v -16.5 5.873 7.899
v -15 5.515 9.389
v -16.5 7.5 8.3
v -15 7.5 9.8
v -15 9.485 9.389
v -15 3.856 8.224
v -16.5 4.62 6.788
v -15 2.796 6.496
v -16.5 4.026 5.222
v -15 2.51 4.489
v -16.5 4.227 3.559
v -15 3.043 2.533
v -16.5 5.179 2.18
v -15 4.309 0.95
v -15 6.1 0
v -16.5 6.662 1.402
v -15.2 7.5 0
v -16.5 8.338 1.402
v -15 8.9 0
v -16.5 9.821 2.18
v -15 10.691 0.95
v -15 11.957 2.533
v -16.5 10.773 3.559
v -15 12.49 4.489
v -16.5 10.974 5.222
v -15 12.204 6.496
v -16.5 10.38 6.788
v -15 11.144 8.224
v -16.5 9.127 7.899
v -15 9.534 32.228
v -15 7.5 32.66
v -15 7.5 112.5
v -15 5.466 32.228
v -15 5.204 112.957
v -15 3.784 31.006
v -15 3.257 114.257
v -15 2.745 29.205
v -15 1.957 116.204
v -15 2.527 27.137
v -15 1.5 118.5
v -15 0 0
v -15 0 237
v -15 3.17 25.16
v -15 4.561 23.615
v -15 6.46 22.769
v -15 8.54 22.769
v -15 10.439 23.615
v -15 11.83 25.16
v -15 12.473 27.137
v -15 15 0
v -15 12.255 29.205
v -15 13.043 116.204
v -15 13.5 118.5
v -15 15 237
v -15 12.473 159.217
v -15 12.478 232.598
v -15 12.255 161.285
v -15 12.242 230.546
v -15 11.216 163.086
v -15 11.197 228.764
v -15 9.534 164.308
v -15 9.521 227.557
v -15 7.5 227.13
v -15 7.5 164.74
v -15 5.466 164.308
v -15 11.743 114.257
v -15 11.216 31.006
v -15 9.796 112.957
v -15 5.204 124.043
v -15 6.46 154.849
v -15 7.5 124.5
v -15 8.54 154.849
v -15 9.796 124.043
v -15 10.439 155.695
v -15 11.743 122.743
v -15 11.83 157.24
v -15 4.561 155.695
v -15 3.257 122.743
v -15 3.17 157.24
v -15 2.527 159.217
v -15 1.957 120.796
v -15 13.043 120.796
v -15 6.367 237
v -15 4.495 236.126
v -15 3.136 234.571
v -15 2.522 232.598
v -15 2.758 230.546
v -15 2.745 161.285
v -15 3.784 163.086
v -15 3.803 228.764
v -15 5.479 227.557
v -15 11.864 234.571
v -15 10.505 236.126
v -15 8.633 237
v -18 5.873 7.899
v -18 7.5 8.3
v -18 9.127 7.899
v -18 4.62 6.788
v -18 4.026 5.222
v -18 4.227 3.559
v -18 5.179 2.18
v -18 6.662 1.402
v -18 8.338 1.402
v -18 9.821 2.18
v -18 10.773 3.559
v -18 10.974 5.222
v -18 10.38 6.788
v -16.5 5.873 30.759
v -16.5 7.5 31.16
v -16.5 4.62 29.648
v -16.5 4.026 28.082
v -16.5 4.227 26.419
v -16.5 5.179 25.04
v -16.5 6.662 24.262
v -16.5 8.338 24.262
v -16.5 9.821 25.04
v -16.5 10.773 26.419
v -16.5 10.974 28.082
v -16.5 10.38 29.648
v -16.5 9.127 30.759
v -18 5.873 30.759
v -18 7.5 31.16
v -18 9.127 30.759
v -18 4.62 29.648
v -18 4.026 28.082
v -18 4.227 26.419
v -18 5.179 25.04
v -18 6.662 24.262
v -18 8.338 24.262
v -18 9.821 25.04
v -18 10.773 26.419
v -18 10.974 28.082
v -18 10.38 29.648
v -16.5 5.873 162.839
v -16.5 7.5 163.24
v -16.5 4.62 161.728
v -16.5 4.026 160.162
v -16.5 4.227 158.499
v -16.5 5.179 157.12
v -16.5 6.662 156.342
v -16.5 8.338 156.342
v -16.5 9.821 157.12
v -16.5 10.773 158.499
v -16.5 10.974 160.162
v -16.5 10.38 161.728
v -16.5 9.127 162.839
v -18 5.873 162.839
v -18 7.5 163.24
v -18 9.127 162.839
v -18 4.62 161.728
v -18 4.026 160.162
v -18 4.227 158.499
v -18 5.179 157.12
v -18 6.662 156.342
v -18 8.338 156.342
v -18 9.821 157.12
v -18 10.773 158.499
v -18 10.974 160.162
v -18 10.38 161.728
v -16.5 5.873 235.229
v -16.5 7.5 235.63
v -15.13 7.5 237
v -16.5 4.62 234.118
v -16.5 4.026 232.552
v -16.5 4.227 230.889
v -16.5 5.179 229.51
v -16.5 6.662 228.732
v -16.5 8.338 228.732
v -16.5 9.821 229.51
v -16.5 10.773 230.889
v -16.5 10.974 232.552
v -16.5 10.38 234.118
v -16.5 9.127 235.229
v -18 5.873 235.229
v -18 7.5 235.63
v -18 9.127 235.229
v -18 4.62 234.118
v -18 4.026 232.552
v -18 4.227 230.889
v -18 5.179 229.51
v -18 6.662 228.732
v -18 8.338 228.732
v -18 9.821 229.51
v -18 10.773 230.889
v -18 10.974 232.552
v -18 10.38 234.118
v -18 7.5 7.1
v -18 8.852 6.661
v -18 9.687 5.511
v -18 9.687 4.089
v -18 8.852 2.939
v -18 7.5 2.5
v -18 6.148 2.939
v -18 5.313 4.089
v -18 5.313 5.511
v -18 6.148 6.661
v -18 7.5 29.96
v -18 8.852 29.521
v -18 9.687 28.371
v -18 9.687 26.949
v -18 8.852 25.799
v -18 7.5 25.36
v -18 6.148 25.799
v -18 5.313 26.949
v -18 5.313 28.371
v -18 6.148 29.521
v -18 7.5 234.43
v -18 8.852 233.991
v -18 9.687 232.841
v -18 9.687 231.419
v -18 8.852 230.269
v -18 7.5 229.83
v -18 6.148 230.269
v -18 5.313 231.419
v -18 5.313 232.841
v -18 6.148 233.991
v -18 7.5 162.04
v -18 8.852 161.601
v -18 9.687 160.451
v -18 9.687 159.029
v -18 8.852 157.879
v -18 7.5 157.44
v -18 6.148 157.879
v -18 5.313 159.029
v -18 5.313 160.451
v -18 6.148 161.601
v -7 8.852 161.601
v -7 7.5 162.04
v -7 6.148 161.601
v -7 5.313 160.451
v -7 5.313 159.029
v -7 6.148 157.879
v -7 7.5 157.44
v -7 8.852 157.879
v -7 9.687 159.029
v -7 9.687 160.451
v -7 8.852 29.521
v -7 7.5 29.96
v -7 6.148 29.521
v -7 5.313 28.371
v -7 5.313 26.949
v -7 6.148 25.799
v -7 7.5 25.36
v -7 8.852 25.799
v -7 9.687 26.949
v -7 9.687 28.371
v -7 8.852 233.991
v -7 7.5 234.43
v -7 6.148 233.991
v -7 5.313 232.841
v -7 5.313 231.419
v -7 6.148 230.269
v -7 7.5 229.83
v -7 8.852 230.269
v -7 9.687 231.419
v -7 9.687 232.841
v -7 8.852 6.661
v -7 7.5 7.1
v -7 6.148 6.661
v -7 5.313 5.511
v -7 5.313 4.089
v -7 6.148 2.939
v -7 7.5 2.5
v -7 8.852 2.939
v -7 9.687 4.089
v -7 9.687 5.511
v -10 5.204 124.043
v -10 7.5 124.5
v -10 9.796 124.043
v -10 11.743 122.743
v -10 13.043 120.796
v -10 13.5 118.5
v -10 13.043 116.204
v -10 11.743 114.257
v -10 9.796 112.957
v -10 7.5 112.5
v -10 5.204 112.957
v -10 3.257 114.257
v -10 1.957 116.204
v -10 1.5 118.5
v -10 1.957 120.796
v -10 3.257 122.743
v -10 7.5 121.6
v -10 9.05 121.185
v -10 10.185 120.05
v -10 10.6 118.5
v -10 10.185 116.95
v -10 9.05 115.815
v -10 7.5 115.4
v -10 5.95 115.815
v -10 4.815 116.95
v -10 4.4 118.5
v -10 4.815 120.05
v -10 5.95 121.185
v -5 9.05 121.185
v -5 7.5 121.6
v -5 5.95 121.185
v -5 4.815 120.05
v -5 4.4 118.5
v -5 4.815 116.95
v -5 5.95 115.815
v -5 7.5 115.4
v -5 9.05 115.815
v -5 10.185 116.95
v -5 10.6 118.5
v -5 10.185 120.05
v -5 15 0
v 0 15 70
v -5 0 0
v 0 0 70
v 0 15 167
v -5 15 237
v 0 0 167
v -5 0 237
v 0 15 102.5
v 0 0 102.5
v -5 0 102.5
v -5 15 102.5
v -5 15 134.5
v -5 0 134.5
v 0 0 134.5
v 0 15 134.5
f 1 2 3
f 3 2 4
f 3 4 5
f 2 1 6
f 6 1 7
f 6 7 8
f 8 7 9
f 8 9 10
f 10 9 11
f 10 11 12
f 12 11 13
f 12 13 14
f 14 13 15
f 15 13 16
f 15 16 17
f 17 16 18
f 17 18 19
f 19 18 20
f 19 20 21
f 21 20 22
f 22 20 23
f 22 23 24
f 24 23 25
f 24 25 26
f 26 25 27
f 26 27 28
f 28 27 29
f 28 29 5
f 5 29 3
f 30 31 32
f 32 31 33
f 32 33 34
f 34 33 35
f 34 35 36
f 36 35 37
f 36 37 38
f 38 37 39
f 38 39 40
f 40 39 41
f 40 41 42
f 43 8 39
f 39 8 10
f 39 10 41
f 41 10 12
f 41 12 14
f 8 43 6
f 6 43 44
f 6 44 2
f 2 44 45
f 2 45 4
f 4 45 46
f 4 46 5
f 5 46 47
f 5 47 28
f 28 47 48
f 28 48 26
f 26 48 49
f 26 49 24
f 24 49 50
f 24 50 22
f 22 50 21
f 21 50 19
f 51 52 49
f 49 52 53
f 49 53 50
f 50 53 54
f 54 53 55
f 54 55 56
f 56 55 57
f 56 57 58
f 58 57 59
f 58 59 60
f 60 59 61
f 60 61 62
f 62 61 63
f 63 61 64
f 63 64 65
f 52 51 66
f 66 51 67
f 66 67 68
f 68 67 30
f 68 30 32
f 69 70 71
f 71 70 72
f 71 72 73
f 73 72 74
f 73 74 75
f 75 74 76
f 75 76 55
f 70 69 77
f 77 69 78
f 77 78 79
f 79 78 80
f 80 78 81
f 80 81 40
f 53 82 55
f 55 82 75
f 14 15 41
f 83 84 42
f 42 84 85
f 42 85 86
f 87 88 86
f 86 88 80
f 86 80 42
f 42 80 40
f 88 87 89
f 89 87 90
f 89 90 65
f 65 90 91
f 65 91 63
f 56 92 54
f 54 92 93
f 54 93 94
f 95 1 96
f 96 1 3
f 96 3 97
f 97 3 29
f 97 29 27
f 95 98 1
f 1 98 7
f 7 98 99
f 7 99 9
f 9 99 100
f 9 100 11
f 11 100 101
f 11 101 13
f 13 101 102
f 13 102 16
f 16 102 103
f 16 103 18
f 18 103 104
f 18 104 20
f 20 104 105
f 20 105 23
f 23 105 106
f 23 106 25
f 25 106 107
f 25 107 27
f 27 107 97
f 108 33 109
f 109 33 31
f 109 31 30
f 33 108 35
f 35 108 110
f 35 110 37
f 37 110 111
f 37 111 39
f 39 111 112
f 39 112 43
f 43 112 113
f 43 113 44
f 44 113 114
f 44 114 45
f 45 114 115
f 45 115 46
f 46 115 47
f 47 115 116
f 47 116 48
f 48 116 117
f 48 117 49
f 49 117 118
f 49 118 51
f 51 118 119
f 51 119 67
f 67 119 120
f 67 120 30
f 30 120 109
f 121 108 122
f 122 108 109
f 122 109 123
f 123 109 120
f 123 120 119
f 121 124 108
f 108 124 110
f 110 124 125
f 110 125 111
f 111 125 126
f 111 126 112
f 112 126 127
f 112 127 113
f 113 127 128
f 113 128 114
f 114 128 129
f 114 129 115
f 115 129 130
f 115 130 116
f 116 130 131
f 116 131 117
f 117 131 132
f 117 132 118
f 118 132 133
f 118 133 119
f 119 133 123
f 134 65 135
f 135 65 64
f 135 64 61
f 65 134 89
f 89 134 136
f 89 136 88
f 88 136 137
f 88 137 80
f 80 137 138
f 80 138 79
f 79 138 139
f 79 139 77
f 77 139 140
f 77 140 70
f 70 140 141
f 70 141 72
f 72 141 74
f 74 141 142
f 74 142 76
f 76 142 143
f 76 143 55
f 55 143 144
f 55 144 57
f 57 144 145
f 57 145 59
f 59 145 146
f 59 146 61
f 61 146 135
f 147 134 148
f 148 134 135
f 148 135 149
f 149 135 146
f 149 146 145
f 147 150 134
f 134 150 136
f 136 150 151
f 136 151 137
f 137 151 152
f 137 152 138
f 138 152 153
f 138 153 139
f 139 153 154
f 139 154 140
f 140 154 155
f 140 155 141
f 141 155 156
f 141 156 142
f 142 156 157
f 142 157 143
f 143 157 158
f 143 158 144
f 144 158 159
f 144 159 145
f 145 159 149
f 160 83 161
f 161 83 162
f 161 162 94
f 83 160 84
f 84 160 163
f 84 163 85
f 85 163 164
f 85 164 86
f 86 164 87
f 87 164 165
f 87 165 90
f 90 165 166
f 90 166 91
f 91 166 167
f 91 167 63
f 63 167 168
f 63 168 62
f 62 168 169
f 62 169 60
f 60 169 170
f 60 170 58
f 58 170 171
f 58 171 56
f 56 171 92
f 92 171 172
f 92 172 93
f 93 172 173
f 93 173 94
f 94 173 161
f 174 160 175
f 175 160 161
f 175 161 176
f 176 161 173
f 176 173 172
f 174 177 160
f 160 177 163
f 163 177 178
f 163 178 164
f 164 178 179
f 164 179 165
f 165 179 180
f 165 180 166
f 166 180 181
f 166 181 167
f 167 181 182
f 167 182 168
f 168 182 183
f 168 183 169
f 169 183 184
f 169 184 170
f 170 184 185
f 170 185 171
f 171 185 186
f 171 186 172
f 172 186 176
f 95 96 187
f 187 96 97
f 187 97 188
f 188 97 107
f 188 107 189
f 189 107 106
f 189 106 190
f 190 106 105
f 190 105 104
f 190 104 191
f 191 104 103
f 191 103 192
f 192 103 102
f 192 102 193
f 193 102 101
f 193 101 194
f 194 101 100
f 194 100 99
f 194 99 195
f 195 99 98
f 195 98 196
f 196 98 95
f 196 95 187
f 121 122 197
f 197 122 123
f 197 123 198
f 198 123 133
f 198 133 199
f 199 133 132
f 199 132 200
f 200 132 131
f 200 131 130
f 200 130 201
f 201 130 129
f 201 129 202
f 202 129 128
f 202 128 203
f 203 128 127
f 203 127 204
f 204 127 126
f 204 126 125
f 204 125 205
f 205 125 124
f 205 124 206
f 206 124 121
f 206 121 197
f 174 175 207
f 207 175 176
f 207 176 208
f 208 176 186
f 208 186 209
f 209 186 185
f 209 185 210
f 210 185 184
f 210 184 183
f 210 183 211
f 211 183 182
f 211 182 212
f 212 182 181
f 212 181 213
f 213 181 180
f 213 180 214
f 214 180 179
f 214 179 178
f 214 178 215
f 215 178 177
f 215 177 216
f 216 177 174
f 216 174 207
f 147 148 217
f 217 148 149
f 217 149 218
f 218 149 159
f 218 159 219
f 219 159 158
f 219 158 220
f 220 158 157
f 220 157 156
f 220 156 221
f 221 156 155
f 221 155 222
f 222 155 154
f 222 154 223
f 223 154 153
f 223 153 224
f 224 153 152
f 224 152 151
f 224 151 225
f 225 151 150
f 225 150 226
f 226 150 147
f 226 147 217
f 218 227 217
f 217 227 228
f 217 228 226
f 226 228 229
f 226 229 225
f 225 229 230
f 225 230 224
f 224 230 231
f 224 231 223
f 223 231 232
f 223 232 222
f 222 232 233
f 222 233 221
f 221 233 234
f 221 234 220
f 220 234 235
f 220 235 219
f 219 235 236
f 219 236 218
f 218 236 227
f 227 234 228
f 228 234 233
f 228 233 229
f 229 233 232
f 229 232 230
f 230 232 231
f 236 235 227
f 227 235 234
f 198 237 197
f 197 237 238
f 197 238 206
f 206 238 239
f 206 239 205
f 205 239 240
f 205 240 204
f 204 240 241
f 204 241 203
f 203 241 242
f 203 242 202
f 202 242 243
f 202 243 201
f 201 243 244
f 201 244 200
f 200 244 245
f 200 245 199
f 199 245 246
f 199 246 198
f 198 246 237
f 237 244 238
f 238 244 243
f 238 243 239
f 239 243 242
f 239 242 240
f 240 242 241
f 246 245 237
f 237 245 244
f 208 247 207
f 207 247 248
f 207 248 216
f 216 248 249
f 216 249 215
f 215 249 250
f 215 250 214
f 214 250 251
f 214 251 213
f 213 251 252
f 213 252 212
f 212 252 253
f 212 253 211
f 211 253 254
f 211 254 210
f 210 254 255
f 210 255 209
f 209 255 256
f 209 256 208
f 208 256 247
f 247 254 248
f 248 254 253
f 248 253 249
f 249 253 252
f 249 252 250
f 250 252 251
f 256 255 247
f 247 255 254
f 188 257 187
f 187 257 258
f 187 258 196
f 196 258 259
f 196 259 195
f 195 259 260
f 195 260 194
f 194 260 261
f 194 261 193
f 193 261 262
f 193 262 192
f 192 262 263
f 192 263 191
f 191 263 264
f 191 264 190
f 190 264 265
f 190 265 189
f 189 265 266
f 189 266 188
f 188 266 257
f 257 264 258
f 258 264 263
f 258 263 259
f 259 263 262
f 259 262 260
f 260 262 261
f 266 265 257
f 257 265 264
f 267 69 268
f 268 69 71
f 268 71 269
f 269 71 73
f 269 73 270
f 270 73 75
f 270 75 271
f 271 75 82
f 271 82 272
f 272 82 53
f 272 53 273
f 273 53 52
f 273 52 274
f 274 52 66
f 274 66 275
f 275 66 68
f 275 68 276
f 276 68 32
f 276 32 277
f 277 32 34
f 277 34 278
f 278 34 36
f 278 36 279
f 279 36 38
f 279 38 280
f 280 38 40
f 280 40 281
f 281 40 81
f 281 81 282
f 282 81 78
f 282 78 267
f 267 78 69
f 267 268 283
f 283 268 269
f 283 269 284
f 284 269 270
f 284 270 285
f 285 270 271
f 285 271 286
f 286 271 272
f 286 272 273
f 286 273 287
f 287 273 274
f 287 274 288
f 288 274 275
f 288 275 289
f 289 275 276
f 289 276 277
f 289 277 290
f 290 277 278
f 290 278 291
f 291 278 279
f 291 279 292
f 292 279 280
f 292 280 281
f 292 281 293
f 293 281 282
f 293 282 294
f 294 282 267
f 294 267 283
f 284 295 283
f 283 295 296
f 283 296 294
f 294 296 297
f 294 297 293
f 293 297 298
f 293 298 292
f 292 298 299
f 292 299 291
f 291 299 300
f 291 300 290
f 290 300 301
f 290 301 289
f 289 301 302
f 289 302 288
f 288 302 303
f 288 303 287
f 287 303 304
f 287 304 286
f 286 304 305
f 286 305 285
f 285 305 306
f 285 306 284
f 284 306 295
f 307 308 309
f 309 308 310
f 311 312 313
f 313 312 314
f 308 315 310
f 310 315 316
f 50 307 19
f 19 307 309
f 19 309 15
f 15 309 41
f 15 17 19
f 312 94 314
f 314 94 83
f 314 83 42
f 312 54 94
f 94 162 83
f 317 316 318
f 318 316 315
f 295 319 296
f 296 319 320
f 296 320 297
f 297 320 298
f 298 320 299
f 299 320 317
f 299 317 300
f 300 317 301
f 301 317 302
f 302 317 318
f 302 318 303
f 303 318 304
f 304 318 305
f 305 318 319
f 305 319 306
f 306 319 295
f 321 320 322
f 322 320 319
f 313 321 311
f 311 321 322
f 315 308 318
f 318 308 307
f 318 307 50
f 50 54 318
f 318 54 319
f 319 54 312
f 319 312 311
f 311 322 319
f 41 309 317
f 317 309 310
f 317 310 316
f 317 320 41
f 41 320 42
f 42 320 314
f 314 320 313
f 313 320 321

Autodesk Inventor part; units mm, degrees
ref_plane "YZ Plane" through (0, 0, 0) normal (1, 0, 0) x (0, 1, 0)
ref_plane "XZ Plane" through (0, 0, 0) normal (0, 1, 0) x (-1, 0, 0)
ref_plane "XY Plane" through (0, 0, 0) normal (0, 0, 1) x (1, 0, 0)
sketch "Skizze3" plane through (0, 0, 0) normal (0, 1, 0) x (-1, 0, 0)
  line L0 (15, 237) -> (0, 237)
  line L1 (0, 237) -> (0, 0)
  line L2 (0, 0) -> (15, 0)
  line L3 (15, 0) -> (15, 237)
  line L4 (5, 134.5) -> (0, 134.5)
  line L5 (0, 134.5) -> (0, 102.5)
  line L6 (0, 102.5) -> (5, 102.5)
  line L7 (5, 102.5) -> (5, 134.5)
  point P0 (0, 134.5)
  dimension "d17" = 237
  dimension "d18" = 15
  dimension "d19" = 5
  dimension "d20" = 32
  dimension "d69" = 102.5
extrude "Extrusion4" add sketch "Skizze3" along normal blind 15 contours L3 L2 L1 L6 L7 L4 L0
sketch "Skizze6" plane through (0, 0, 0) normal (0, -1, 0) x (1, 0, 0)
  line L0 (0, 70) -> (-5, 0)
  line L1 (0, 0) -> (-15, 0) projected
  line L2 (0, 102.5) -> (0, 0) projected
  line L3 (-5, 237) -> (0, 167)
  line L4 (-15, 237) -> (0, 237) projected
  line L5 (0, 237) -> (0, 134.5) projected
  point P0 (0, 167)
  dimension "d48" = 0
  dimension "d49" = 10
  dimension "d50" = 0
  dimension "d51" = 70
  dimension "d52" = 0
  dimension "d53" = 10
  dimension "d54" = 70
  dimension "d55" = 0
extrude "Extrusion9" cut sketch "Skizze6" against normal blind 20
sketch "Skizze9" plane through (-15, 0, 0) normal (-1, 0, 0) x (0, 0, 1)
  circle A0 centre (118.5, 7.5) radius 3.1
  line L0 (0, 0) -> (0, 15) projected
  line L1 (0, 15) -> (237, 15) projected
  dimension "d70" = 6.2
  dimension "d71" = 118.5
  dimension "d72" = 7.5
extrude "Extrusion12" cut sketch "Skizze9" against normal blind 10
sketch "Skizze10" plane through (-15, 0, 0) normal (-1, 0, 0) x (0, 0, 1)
  circle A0 centre (4.8, 7.5) radius 2.3
  line L0 (0, 15) -> (237, 15) projected
  circle A1 centre (159.74, 7.5) radius 2.3
  circle A2 centre (232.13, 7.5) radius 2.3
  circle A3 centre (27.66, 7.5) radius 2.3
  line L1 (0, 0) -> (0, 15) projected
  dimension "d80" = 4.6
  dimension "d84" = 7.5
  dimension "d85" = 4.6
  dimension "d86" = 4.6
  dimension "d87" = 4.6
  dimension "d88" = 227.33
  dimension "d89" = 4.8
  dimension "d90" = 7.5
  dimension "d91" = 22.86
  dimension "d92" = 7.5
  dimension "d93" = 154.94
  dimension "d94" = 7.5
sketch "Skizze11" plane through (-15, 0, 0) normal (-1, 0, 0) x (0, 0, 1)
  circle A0 centre (118.5, 7.5) radius 3.1 projected
  circle A1 centre (118.5, 7.5) radius 6
  point P0 (0, 0)
  dimension "d81" = 12
extrude "Extrusion15" cut sketch "Skizze11" against normal blind 5
extrude "Extrusion16" cut sketch "Skizze10" against normal blind 8
sketch "Skizze12" plane through (-15, 0, 0) normal (-1, 0, 0) x (0, 0, 1)
  circle A0 centre (159.74, 7.5) radius 2.3 projected
  circle A1 centre (232.13, 7.5) radius 2.3 projected
  circle A2 centre (27.66, 7.5) radius 2.3 projected
  circle A3 centre (4.8, 7.5) radius 2.3 projected
  circle A4 centre (232.13, 7.5) radius 2.3 projected
  circle A5 centre (232.13, 7.5) radius 3.5
  circle A6 centre (159.74, 7.5) radius 2.3 projected
  circle A7 centre (159.74, 7.5) radius 3.5
  circle A8 centre (27.66, 7.5) radius 3.5
  circle A9 centre (4.8, 7.5) radius 3.5
  point P0 (0, 0)
  dimension "d97" = 7
  dimension "d98" = 7
  dimension "d99" = 7
  dimension "d100" = 7
extrude "Extrusion17" add sketch "Skizze12" along normal blind 3
chamfer "Fase3" distance 1.5 angle 45 4 edges at (-15, 7.5, 228.63) (-15, 7.5, 156.24) (-15, 7.5, 24.16) (-15, 7.5, 1.3)
properties part number "atx_mount"
